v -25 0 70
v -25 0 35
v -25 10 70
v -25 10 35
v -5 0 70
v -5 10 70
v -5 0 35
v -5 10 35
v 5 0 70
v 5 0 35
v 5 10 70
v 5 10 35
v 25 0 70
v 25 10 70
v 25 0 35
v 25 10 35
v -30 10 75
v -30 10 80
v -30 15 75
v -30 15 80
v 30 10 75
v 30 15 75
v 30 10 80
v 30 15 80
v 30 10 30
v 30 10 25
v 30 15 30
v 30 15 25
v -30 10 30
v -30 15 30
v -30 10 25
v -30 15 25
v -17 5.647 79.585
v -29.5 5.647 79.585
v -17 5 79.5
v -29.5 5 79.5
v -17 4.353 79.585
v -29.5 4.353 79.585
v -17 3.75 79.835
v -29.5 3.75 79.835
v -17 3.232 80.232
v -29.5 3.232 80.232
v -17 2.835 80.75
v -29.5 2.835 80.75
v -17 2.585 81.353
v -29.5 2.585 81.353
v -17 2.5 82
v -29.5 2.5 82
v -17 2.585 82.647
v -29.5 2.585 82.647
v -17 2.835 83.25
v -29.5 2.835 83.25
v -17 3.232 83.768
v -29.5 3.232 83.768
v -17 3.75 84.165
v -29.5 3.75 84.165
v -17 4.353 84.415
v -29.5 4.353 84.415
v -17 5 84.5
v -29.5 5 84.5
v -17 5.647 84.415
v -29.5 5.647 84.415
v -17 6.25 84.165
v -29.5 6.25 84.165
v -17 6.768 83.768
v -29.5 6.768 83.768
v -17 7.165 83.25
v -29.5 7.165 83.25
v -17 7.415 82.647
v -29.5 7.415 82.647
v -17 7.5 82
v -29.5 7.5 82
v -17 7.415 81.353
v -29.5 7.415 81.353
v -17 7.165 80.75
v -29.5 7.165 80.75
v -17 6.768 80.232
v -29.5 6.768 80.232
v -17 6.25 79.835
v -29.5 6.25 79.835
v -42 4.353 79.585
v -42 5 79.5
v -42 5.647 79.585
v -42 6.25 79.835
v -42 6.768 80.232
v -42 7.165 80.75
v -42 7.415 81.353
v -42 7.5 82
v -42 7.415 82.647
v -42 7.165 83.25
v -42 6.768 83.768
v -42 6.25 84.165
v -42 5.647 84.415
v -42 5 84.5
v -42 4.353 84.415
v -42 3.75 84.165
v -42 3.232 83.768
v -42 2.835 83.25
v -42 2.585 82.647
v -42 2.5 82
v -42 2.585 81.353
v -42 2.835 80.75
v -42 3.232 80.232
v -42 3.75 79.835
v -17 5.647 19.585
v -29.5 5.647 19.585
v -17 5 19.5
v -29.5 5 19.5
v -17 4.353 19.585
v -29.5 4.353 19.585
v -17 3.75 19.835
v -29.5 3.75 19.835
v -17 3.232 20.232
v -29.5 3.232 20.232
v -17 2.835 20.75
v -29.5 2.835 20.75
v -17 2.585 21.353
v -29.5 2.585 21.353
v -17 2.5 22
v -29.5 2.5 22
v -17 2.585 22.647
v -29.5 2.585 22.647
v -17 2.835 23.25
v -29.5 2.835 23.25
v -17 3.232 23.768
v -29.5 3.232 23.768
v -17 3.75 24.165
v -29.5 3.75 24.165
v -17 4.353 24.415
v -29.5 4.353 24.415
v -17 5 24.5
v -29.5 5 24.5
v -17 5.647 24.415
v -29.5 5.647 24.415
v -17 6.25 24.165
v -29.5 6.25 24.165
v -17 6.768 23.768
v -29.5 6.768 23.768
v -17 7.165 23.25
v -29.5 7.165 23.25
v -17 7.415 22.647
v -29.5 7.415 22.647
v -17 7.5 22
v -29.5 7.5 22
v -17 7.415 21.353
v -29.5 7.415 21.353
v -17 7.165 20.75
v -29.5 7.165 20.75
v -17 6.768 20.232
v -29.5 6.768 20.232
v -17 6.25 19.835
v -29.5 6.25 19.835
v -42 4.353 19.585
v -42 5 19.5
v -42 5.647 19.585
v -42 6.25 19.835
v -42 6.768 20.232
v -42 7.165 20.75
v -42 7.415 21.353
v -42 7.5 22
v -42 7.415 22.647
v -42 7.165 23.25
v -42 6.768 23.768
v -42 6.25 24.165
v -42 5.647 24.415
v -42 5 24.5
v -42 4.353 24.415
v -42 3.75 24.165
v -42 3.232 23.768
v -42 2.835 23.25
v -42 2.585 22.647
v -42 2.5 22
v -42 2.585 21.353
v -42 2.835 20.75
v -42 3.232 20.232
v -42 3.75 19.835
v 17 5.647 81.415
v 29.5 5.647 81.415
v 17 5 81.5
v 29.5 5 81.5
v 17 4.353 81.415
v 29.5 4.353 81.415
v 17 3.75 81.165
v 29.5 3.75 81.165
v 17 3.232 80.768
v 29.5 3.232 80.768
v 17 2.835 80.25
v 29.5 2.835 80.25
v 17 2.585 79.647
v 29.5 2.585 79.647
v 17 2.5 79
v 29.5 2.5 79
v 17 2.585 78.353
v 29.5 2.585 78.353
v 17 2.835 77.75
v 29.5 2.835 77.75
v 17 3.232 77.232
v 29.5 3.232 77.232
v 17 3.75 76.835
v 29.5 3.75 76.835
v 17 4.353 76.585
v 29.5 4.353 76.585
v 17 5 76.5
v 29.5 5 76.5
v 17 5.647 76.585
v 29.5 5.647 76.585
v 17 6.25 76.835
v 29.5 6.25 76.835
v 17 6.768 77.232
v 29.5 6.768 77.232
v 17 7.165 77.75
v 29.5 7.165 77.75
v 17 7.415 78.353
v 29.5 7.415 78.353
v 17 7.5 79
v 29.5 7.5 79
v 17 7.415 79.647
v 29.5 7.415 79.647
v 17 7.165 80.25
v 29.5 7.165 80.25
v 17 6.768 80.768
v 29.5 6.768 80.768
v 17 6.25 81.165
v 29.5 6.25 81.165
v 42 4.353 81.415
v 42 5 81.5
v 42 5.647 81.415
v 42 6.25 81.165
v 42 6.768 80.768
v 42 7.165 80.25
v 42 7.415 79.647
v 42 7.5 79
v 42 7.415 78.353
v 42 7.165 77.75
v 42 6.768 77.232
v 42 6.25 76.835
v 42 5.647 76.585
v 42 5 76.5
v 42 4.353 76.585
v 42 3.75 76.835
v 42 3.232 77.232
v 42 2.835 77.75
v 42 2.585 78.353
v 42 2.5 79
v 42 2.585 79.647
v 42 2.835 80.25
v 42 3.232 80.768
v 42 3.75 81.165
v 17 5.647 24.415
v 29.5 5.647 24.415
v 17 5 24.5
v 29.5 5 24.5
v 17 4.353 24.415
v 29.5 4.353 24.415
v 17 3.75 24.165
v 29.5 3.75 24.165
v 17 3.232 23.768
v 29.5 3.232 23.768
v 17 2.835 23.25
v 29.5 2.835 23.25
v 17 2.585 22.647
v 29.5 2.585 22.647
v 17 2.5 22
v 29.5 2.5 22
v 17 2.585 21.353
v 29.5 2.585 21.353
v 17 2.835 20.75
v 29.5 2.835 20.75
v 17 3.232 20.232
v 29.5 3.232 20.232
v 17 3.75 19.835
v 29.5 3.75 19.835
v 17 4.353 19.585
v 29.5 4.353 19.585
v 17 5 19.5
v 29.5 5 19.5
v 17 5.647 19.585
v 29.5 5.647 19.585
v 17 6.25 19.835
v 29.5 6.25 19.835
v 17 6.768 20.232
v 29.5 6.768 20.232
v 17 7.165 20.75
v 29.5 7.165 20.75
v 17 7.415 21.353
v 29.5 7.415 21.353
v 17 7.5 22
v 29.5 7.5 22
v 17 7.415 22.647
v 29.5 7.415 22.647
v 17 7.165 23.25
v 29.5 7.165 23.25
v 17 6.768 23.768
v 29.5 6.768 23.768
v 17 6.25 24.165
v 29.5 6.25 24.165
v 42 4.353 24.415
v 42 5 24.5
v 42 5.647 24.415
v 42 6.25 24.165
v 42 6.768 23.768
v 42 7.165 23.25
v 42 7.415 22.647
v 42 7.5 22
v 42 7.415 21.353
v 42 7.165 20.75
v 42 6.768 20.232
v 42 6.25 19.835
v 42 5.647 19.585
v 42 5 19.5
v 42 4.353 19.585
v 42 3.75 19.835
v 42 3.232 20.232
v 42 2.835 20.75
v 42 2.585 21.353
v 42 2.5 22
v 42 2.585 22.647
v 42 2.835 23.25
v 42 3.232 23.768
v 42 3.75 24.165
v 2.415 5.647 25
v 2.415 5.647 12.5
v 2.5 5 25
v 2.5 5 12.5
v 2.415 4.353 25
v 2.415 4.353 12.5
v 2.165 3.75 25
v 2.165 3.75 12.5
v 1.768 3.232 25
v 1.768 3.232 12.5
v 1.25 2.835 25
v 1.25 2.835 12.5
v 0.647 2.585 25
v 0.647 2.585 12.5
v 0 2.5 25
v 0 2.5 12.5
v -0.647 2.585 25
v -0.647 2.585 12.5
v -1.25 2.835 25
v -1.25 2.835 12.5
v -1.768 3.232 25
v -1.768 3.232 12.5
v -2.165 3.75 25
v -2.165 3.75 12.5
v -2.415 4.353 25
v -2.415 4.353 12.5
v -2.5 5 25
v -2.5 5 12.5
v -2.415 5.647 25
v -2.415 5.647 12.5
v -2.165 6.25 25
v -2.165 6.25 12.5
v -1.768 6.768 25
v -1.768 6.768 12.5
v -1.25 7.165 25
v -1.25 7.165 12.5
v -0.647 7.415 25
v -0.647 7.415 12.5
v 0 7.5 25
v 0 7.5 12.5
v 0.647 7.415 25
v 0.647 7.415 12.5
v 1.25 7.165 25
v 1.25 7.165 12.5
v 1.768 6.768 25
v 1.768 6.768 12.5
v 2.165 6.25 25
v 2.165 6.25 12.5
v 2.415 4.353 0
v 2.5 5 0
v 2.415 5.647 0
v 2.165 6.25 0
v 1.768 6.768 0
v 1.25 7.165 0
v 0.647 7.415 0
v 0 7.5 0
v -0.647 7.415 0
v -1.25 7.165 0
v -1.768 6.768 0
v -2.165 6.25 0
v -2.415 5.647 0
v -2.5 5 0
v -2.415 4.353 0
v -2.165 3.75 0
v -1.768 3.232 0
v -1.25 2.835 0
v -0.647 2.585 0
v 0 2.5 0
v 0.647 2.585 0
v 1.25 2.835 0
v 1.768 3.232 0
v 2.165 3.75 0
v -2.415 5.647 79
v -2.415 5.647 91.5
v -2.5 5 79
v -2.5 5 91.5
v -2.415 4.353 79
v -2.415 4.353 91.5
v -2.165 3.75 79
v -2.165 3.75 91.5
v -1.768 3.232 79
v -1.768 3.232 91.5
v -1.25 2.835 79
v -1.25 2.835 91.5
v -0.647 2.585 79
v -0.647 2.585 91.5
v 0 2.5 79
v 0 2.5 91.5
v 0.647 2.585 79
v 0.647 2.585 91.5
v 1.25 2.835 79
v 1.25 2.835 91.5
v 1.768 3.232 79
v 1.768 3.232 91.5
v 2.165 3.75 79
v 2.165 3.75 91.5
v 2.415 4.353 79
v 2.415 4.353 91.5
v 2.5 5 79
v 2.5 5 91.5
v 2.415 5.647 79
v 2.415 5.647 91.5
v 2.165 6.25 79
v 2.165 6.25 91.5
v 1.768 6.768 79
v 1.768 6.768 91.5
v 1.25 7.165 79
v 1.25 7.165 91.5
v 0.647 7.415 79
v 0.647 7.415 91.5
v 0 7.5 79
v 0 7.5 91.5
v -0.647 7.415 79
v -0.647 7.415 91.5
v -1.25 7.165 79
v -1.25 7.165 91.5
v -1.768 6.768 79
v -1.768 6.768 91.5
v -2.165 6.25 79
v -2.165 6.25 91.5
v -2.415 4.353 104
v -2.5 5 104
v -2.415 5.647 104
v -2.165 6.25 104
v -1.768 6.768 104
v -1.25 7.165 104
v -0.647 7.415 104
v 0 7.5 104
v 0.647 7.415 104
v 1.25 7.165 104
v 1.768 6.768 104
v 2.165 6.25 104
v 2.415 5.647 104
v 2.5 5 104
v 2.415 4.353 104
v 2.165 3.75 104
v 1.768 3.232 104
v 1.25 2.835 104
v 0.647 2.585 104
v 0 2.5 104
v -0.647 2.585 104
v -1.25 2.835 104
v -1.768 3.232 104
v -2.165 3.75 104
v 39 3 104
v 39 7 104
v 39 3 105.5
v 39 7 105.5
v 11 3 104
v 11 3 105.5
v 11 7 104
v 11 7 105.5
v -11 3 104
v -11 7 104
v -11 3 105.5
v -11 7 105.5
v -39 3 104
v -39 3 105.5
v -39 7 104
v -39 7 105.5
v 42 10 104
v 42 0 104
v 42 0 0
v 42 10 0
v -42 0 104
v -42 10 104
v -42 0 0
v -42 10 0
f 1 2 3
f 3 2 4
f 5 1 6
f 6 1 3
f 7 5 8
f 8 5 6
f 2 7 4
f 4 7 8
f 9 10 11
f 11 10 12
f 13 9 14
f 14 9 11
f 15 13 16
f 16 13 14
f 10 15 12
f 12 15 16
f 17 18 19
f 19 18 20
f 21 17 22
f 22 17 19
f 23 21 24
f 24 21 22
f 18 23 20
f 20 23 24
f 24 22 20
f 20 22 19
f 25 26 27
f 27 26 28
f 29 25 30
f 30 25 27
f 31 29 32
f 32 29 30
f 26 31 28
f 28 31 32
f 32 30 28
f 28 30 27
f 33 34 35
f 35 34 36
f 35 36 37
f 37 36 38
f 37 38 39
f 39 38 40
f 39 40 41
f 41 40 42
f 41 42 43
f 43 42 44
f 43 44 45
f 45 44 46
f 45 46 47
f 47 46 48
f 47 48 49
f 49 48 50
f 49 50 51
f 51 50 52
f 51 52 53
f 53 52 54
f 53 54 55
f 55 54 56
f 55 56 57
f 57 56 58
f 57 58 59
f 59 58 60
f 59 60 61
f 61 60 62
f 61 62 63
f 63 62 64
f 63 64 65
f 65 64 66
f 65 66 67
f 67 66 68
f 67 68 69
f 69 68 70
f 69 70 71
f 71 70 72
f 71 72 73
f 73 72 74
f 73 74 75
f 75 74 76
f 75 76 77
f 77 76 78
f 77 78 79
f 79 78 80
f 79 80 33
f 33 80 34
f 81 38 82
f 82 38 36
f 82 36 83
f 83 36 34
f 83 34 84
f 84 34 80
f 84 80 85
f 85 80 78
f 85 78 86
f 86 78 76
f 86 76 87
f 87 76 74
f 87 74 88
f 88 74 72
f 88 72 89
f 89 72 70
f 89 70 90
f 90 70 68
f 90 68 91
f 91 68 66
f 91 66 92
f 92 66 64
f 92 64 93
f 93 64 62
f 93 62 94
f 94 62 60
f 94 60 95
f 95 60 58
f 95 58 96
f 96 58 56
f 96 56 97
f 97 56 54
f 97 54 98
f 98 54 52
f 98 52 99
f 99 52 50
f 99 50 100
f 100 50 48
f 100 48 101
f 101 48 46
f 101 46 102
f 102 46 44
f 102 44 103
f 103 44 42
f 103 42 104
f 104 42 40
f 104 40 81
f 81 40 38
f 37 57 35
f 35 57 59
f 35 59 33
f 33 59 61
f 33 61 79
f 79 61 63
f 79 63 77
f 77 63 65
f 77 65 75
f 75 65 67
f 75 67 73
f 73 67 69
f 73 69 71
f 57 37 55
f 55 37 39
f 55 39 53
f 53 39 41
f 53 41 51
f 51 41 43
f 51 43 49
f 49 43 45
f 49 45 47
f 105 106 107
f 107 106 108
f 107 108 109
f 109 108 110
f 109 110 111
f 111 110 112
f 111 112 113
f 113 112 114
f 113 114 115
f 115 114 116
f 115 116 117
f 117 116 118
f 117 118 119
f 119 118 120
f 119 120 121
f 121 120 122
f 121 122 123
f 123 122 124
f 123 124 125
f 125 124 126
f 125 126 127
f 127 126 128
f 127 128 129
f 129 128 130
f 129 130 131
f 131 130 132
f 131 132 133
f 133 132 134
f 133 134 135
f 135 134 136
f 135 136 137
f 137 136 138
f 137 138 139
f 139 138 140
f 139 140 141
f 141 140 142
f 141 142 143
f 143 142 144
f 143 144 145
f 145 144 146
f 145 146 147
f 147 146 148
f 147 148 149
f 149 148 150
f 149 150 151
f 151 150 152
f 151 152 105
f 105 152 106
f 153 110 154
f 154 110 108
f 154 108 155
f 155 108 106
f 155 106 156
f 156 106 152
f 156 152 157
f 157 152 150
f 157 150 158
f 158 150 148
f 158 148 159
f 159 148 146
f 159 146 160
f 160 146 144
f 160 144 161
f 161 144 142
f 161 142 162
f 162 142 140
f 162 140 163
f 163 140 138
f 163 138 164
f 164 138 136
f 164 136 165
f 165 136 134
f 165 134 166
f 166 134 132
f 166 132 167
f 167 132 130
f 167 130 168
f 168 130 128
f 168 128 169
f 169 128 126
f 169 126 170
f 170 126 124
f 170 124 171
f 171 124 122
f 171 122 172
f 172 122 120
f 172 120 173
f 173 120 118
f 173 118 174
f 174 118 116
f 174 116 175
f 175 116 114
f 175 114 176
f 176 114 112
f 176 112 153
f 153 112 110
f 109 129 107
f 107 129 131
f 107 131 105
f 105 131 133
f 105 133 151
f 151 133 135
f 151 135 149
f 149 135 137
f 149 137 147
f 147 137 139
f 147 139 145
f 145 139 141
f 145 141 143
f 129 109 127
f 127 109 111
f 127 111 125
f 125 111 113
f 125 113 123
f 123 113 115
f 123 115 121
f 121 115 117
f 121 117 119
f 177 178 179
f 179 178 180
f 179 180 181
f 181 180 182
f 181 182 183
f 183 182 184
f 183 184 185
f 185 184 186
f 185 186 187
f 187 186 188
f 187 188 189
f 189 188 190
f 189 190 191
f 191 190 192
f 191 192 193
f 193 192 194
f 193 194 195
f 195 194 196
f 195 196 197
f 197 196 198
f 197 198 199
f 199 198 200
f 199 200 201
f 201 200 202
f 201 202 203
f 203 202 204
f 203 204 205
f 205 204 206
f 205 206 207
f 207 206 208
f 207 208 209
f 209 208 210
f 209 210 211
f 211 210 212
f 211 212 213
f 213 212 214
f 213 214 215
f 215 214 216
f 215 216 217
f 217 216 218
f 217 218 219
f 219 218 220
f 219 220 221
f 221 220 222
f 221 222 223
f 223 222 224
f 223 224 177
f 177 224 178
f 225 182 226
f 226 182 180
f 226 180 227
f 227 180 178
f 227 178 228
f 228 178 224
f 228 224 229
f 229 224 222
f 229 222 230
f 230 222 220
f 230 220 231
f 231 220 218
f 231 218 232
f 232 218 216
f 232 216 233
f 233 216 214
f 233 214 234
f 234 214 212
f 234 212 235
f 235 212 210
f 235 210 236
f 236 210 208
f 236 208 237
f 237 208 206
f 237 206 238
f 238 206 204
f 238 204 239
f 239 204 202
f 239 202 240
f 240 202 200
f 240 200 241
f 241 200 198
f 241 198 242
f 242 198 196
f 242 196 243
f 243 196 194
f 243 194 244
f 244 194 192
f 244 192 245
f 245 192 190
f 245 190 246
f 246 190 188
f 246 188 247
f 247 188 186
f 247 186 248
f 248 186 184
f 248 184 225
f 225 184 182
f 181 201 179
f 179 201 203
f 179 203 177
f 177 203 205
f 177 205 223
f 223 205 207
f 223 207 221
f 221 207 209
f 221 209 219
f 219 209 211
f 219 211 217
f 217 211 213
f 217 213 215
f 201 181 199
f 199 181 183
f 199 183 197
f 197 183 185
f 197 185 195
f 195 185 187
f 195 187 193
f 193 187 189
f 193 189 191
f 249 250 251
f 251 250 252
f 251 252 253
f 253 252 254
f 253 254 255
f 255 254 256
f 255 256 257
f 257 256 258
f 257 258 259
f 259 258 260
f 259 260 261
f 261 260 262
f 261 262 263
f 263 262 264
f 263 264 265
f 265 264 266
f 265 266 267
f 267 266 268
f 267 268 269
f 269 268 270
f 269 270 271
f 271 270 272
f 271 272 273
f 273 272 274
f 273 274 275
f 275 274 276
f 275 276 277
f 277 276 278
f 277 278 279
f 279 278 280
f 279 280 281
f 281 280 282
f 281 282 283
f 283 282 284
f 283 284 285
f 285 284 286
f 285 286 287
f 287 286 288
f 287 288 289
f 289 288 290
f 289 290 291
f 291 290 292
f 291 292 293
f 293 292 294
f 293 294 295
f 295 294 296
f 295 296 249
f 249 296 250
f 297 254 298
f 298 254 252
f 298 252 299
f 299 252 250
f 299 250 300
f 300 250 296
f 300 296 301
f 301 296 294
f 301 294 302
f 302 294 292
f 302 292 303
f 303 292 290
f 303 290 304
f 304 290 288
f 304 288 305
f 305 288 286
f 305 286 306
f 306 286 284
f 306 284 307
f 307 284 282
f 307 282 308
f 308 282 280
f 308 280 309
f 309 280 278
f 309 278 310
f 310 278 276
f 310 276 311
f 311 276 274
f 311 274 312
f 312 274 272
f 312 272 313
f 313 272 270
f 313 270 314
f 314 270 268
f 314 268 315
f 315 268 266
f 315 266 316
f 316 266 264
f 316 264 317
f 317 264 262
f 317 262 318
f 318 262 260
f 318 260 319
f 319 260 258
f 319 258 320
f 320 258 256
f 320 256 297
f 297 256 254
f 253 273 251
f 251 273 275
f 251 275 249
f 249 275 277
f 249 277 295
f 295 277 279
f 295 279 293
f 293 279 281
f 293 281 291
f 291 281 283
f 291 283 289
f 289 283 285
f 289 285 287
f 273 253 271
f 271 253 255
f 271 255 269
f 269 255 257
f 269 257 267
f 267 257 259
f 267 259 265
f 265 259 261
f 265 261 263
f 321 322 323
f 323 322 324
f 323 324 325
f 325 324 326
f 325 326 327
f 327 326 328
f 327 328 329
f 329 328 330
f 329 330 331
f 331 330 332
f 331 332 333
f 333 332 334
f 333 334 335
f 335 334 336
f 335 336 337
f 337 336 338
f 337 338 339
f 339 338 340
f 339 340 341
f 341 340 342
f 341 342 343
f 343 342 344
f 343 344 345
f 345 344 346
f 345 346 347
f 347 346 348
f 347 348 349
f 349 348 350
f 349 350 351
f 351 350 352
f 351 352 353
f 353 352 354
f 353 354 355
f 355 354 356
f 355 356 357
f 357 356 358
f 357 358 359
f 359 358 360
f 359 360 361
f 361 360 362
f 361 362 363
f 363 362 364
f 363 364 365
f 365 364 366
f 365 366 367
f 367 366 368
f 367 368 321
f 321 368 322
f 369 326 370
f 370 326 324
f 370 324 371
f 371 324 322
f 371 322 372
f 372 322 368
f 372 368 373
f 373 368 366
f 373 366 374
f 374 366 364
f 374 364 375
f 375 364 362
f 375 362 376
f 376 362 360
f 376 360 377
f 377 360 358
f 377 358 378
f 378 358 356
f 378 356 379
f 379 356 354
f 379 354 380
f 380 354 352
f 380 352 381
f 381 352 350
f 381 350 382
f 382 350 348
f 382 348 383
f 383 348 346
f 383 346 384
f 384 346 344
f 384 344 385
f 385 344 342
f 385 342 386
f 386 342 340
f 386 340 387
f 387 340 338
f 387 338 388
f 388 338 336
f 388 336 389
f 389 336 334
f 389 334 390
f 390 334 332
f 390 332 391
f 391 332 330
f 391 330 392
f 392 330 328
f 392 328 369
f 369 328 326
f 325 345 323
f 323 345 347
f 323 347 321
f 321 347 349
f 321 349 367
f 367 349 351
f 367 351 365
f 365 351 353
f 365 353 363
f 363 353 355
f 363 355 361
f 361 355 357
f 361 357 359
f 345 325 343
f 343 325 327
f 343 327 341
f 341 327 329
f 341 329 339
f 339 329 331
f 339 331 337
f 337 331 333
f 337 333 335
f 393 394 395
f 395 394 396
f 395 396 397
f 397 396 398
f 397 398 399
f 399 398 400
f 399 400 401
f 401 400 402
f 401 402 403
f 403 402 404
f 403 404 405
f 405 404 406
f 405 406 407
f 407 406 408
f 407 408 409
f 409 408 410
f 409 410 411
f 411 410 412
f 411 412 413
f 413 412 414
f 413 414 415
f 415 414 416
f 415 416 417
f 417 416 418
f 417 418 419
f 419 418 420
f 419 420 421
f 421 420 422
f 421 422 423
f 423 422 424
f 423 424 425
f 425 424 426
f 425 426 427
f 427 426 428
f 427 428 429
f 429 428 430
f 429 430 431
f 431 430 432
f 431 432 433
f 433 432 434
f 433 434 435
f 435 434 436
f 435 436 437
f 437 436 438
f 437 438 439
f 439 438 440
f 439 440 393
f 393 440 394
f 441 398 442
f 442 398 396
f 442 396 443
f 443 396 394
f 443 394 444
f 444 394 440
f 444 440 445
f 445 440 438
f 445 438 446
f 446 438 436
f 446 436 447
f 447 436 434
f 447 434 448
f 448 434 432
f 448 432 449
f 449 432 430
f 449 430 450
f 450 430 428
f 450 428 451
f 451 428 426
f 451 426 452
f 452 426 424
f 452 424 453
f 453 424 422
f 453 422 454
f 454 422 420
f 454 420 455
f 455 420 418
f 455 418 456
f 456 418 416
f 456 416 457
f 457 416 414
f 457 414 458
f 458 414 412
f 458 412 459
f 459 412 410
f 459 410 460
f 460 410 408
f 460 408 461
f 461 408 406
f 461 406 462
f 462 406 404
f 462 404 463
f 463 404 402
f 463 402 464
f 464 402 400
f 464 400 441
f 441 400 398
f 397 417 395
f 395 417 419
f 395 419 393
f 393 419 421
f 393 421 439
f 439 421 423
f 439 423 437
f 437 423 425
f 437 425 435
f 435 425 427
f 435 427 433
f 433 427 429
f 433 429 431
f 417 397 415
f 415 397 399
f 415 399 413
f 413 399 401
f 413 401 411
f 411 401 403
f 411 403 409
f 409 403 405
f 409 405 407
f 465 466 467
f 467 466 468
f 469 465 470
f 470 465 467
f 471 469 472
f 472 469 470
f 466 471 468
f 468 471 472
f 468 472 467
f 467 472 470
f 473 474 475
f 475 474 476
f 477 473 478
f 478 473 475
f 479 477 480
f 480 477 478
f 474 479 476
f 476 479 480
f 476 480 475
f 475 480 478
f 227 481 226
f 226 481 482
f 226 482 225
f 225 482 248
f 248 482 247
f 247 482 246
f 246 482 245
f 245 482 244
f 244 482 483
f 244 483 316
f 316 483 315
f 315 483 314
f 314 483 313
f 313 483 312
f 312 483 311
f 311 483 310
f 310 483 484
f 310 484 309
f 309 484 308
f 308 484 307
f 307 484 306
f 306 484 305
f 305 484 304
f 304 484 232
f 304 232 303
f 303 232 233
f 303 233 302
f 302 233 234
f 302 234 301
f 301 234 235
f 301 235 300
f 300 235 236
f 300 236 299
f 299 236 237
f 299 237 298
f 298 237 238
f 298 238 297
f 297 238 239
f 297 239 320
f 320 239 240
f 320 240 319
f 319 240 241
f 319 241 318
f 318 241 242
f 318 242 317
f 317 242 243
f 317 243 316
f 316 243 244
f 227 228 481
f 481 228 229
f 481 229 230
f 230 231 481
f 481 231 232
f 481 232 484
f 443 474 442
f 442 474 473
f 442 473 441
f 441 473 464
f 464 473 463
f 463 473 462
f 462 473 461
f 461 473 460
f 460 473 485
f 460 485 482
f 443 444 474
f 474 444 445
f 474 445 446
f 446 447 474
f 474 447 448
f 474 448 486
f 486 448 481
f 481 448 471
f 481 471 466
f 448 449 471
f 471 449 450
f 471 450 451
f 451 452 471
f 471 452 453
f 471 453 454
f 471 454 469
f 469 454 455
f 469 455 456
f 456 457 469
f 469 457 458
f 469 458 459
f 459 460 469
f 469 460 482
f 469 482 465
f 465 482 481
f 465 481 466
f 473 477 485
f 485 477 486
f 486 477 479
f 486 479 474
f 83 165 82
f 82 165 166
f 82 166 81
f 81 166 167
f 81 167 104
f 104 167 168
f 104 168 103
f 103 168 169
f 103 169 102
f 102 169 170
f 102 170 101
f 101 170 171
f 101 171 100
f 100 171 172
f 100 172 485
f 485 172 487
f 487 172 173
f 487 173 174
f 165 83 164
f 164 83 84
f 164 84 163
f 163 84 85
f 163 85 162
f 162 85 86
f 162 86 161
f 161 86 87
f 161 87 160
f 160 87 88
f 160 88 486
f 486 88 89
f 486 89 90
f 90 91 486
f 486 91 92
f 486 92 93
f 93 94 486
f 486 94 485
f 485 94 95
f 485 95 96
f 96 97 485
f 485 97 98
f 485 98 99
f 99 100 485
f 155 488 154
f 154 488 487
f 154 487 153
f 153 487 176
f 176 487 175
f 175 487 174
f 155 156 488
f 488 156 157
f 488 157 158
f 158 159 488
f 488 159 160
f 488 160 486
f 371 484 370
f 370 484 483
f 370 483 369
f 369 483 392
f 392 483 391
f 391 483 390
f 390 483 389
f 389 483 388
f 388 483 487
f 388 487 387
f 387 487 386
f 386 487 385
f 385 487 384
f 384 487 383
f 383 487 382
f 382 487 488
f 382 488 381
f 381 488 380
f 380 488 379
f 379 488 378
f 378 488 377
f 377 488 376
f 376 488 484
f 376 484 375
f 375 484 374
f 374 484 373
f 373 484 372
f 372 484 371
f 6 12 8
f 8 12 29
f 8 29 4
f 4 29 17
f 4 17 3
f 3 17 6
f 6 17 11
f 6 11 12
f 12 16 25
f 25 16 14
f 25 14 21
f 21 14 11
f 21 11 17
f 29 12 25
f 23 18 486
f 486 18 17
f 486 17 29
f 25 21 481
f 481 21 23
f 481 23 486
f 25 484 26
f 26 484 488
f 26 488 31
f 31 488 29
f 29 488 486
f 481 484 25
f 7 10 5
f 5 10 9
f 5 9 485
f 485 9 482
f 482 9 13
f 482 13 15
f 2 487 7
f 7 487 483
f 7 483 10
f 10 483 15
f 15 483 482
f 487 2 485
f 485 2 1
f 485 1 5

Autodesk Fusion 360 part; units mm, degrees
sketch "Sketch1" plane through (0, 0, 0) normal (0, 1, 0) x (1, 0, 0)
  line L0 (0, 0) -> (42, 0)
  line L1 (0, 0) -> (-42, 0)
  line L2 (-42, 0) -> (-42, -104)
  line L3 (42, 0) -> (42, -104)
  line L4 (-42, -104) -> (42, -104)
  dimension "d1" = 42
  dimension "d2" = 42
  dimension "d3" = 104
  dimension "d4" = 104
extrude "Extrude1" add sketch "Sketch1" along normal blind 10
sketch "Sketch2" plane through (-42, 0, 0) normal (-1, 0, 0) x (0, 0, 1)
  line L0 (0, 0) -> (104, 0)
  line L1 (104, 0) -> (104, 10)
  line L2 (104, 10) -> (0, 10)
  line L3 (0, 10) -> (0, 0)
sketch "Sketch3" plane through (0, 0, 104) normal (0, 0, 1) x (1, 0, 0)
  line L0 (-42, 0) -> (42, 0)
  line L1 (42, 0) -> (42, 10)
  line L2 (42, 10) -> (-42, 10)
  line L3 (-42, 10) -> (-42, 0)
sketch "Sketch4" plane through (0, 0, 104) normal (0, 0, 1) x (1, 0, 0)
sketch "Sketch5" plane through (0, 0, 104) normal (0, 0, 1) x (1, 0, 0)
sketch "Sketch6" plane through (0, 0, 104) normal (0, 0, 1) x (1, 0, 0)
  line L0 (-39, 7) -> (-39, 3)
  line L1 (-39, 3) -> (-11, 3)
  line L2 (-11, 3) -> (-11, 7)
  line L3 (-11, 7) -> (-39, 7)
  dimension "d21" = 28
sketch "Sketch7" plane through (0, 0, 104) normal (0, 0, 1) x (1, 0, 0)
  line L0 (39, 5) -> (39, 3)
  line L1 (39, 3) -> (11, 3)
  line L2 (11, 3) -> (11, 7)
  line L3 (11, 7) -> (39, 7)
  line L4 (39, 7) -> (39, 5)
  circle A0 centre (0, 5) radius 2.5
  dimension "d22" = 28
  dimension "d23" = 5
extrude "Extrude2" add sketch "Sketch6" sketch "Sketch7" along normal blind 1.5 of sketch 2 contours L0 L1 L2 L3 L4
sketch "Sketch8" plane through (0, 0, 104) normal (0, 0, 1) x (1, 0, 0)
  circle A0 centre (0, 5) radius 2.5
  dimension "d26" = 5
extrude "Extrude3" cut sketch "Sketch8" against normal blind 25
sketch "Sketch9" plane through (0, 0, 0) normal (0, 0, -1) x (-1, 0, 0)
  line L0 (-42, 0) -> (42, 0)
  line L1 (42, 0) -> (42, 10)
  line L2 (42, 10) -> (-42, 10)
  line L3 (-42, 10) -> (-42, 0)
  circle A0 centre (0, 5) radius 2.5
  dimension "d29" = 5
extrude "Extrude4" cut sketch "Sketch9" against normal blind 25 contours A0
sketch "Sketch10" plane through (42, 0, 0) normal (1, 0, 0) x (0, 0, -1)
  line L0 (-104, 0) -> (0, 0)
  line L1 (0, 0) -> (0, 10)
  line L2 (0, 10) -> (-104, 10)
  line L3 (-104, 10) -> (-104, 0)
  circle A0 centre (-79, 5) radius 2.5
  circle A1 centre (-22, 5) radius 2.5
  dimension "d33" = 5
  dimension "d35" = 5
extrude "Extrude5" cut sketch "Sketch10" against normal blind 25 contours A0 | A1
sketch "Sketch11" plane through (-42, 0, 0) normal (-1, 0, 0) x (0, 0, 1)
  circle A0 centre (22, 5) radius 2.5
  circle A1 centre (82, 5) radius 2.5
  dimension "d39" = 5
  dimension "d41" = 5
extrude "Extrude6" cut sketch "Sketch11" against normal blind 25
sketch "Sketch12" plane through (0, 10, 0) normal (0, 1, 0) x (-1, 0, 0)
  line L0 (-42, 0) -> (42, 0)
  line L1 (42, 0) -> (42, 104)
  line L2 (42, 104) -> (-42, 104)
  line L3 (-42, 104) -> (-42, 0)
sketch "Sketch13" plane through (0, 10, 0) normal (0, 1, 0) x (-1, 0, 0)
  line L0 (-30, 80) -> (-30, 75)
  line L1 (-30, 75) -> (30, 75)
  line L2 (30, 75) -> (30, 80)
  line L3 (30, 80) -> (-30, 80)
  line L4 (-30, 30) -> (30, 30)
  line L5 (30, 30) -> (30, 25)
  line L6 (30, 25) -> (-30, 25)
  line L7 (-30, 25) -> (-30, 30)
  dimension "d44" = 5
  dimension "d45" = 5
extrude "Extrude7" add sketch "Sketch13" along normal blind 5
sketch "Sketch14" plane through (0, 10, 0) normal (0, 1, 0) x (-1, 0, 0)
  line L0 (25, 35) -> (5, 35)
  line L1 (5, 35) -> (5, 70)
  line L2 (5, 70) -> (25, 70)
  line L3 (25, 70) -> (25, 35)
  line L4 (-5, 35) -> (-25, 35)
  line L5 (-25, 35) -> (-25, 70)
  line L6 (-25, 70) -> (-5, 70)
  line L7 (-5, 70) -> (-5, 35)
extrude "Extrude8" cut sketch "Sketch14" against normal blind 20
